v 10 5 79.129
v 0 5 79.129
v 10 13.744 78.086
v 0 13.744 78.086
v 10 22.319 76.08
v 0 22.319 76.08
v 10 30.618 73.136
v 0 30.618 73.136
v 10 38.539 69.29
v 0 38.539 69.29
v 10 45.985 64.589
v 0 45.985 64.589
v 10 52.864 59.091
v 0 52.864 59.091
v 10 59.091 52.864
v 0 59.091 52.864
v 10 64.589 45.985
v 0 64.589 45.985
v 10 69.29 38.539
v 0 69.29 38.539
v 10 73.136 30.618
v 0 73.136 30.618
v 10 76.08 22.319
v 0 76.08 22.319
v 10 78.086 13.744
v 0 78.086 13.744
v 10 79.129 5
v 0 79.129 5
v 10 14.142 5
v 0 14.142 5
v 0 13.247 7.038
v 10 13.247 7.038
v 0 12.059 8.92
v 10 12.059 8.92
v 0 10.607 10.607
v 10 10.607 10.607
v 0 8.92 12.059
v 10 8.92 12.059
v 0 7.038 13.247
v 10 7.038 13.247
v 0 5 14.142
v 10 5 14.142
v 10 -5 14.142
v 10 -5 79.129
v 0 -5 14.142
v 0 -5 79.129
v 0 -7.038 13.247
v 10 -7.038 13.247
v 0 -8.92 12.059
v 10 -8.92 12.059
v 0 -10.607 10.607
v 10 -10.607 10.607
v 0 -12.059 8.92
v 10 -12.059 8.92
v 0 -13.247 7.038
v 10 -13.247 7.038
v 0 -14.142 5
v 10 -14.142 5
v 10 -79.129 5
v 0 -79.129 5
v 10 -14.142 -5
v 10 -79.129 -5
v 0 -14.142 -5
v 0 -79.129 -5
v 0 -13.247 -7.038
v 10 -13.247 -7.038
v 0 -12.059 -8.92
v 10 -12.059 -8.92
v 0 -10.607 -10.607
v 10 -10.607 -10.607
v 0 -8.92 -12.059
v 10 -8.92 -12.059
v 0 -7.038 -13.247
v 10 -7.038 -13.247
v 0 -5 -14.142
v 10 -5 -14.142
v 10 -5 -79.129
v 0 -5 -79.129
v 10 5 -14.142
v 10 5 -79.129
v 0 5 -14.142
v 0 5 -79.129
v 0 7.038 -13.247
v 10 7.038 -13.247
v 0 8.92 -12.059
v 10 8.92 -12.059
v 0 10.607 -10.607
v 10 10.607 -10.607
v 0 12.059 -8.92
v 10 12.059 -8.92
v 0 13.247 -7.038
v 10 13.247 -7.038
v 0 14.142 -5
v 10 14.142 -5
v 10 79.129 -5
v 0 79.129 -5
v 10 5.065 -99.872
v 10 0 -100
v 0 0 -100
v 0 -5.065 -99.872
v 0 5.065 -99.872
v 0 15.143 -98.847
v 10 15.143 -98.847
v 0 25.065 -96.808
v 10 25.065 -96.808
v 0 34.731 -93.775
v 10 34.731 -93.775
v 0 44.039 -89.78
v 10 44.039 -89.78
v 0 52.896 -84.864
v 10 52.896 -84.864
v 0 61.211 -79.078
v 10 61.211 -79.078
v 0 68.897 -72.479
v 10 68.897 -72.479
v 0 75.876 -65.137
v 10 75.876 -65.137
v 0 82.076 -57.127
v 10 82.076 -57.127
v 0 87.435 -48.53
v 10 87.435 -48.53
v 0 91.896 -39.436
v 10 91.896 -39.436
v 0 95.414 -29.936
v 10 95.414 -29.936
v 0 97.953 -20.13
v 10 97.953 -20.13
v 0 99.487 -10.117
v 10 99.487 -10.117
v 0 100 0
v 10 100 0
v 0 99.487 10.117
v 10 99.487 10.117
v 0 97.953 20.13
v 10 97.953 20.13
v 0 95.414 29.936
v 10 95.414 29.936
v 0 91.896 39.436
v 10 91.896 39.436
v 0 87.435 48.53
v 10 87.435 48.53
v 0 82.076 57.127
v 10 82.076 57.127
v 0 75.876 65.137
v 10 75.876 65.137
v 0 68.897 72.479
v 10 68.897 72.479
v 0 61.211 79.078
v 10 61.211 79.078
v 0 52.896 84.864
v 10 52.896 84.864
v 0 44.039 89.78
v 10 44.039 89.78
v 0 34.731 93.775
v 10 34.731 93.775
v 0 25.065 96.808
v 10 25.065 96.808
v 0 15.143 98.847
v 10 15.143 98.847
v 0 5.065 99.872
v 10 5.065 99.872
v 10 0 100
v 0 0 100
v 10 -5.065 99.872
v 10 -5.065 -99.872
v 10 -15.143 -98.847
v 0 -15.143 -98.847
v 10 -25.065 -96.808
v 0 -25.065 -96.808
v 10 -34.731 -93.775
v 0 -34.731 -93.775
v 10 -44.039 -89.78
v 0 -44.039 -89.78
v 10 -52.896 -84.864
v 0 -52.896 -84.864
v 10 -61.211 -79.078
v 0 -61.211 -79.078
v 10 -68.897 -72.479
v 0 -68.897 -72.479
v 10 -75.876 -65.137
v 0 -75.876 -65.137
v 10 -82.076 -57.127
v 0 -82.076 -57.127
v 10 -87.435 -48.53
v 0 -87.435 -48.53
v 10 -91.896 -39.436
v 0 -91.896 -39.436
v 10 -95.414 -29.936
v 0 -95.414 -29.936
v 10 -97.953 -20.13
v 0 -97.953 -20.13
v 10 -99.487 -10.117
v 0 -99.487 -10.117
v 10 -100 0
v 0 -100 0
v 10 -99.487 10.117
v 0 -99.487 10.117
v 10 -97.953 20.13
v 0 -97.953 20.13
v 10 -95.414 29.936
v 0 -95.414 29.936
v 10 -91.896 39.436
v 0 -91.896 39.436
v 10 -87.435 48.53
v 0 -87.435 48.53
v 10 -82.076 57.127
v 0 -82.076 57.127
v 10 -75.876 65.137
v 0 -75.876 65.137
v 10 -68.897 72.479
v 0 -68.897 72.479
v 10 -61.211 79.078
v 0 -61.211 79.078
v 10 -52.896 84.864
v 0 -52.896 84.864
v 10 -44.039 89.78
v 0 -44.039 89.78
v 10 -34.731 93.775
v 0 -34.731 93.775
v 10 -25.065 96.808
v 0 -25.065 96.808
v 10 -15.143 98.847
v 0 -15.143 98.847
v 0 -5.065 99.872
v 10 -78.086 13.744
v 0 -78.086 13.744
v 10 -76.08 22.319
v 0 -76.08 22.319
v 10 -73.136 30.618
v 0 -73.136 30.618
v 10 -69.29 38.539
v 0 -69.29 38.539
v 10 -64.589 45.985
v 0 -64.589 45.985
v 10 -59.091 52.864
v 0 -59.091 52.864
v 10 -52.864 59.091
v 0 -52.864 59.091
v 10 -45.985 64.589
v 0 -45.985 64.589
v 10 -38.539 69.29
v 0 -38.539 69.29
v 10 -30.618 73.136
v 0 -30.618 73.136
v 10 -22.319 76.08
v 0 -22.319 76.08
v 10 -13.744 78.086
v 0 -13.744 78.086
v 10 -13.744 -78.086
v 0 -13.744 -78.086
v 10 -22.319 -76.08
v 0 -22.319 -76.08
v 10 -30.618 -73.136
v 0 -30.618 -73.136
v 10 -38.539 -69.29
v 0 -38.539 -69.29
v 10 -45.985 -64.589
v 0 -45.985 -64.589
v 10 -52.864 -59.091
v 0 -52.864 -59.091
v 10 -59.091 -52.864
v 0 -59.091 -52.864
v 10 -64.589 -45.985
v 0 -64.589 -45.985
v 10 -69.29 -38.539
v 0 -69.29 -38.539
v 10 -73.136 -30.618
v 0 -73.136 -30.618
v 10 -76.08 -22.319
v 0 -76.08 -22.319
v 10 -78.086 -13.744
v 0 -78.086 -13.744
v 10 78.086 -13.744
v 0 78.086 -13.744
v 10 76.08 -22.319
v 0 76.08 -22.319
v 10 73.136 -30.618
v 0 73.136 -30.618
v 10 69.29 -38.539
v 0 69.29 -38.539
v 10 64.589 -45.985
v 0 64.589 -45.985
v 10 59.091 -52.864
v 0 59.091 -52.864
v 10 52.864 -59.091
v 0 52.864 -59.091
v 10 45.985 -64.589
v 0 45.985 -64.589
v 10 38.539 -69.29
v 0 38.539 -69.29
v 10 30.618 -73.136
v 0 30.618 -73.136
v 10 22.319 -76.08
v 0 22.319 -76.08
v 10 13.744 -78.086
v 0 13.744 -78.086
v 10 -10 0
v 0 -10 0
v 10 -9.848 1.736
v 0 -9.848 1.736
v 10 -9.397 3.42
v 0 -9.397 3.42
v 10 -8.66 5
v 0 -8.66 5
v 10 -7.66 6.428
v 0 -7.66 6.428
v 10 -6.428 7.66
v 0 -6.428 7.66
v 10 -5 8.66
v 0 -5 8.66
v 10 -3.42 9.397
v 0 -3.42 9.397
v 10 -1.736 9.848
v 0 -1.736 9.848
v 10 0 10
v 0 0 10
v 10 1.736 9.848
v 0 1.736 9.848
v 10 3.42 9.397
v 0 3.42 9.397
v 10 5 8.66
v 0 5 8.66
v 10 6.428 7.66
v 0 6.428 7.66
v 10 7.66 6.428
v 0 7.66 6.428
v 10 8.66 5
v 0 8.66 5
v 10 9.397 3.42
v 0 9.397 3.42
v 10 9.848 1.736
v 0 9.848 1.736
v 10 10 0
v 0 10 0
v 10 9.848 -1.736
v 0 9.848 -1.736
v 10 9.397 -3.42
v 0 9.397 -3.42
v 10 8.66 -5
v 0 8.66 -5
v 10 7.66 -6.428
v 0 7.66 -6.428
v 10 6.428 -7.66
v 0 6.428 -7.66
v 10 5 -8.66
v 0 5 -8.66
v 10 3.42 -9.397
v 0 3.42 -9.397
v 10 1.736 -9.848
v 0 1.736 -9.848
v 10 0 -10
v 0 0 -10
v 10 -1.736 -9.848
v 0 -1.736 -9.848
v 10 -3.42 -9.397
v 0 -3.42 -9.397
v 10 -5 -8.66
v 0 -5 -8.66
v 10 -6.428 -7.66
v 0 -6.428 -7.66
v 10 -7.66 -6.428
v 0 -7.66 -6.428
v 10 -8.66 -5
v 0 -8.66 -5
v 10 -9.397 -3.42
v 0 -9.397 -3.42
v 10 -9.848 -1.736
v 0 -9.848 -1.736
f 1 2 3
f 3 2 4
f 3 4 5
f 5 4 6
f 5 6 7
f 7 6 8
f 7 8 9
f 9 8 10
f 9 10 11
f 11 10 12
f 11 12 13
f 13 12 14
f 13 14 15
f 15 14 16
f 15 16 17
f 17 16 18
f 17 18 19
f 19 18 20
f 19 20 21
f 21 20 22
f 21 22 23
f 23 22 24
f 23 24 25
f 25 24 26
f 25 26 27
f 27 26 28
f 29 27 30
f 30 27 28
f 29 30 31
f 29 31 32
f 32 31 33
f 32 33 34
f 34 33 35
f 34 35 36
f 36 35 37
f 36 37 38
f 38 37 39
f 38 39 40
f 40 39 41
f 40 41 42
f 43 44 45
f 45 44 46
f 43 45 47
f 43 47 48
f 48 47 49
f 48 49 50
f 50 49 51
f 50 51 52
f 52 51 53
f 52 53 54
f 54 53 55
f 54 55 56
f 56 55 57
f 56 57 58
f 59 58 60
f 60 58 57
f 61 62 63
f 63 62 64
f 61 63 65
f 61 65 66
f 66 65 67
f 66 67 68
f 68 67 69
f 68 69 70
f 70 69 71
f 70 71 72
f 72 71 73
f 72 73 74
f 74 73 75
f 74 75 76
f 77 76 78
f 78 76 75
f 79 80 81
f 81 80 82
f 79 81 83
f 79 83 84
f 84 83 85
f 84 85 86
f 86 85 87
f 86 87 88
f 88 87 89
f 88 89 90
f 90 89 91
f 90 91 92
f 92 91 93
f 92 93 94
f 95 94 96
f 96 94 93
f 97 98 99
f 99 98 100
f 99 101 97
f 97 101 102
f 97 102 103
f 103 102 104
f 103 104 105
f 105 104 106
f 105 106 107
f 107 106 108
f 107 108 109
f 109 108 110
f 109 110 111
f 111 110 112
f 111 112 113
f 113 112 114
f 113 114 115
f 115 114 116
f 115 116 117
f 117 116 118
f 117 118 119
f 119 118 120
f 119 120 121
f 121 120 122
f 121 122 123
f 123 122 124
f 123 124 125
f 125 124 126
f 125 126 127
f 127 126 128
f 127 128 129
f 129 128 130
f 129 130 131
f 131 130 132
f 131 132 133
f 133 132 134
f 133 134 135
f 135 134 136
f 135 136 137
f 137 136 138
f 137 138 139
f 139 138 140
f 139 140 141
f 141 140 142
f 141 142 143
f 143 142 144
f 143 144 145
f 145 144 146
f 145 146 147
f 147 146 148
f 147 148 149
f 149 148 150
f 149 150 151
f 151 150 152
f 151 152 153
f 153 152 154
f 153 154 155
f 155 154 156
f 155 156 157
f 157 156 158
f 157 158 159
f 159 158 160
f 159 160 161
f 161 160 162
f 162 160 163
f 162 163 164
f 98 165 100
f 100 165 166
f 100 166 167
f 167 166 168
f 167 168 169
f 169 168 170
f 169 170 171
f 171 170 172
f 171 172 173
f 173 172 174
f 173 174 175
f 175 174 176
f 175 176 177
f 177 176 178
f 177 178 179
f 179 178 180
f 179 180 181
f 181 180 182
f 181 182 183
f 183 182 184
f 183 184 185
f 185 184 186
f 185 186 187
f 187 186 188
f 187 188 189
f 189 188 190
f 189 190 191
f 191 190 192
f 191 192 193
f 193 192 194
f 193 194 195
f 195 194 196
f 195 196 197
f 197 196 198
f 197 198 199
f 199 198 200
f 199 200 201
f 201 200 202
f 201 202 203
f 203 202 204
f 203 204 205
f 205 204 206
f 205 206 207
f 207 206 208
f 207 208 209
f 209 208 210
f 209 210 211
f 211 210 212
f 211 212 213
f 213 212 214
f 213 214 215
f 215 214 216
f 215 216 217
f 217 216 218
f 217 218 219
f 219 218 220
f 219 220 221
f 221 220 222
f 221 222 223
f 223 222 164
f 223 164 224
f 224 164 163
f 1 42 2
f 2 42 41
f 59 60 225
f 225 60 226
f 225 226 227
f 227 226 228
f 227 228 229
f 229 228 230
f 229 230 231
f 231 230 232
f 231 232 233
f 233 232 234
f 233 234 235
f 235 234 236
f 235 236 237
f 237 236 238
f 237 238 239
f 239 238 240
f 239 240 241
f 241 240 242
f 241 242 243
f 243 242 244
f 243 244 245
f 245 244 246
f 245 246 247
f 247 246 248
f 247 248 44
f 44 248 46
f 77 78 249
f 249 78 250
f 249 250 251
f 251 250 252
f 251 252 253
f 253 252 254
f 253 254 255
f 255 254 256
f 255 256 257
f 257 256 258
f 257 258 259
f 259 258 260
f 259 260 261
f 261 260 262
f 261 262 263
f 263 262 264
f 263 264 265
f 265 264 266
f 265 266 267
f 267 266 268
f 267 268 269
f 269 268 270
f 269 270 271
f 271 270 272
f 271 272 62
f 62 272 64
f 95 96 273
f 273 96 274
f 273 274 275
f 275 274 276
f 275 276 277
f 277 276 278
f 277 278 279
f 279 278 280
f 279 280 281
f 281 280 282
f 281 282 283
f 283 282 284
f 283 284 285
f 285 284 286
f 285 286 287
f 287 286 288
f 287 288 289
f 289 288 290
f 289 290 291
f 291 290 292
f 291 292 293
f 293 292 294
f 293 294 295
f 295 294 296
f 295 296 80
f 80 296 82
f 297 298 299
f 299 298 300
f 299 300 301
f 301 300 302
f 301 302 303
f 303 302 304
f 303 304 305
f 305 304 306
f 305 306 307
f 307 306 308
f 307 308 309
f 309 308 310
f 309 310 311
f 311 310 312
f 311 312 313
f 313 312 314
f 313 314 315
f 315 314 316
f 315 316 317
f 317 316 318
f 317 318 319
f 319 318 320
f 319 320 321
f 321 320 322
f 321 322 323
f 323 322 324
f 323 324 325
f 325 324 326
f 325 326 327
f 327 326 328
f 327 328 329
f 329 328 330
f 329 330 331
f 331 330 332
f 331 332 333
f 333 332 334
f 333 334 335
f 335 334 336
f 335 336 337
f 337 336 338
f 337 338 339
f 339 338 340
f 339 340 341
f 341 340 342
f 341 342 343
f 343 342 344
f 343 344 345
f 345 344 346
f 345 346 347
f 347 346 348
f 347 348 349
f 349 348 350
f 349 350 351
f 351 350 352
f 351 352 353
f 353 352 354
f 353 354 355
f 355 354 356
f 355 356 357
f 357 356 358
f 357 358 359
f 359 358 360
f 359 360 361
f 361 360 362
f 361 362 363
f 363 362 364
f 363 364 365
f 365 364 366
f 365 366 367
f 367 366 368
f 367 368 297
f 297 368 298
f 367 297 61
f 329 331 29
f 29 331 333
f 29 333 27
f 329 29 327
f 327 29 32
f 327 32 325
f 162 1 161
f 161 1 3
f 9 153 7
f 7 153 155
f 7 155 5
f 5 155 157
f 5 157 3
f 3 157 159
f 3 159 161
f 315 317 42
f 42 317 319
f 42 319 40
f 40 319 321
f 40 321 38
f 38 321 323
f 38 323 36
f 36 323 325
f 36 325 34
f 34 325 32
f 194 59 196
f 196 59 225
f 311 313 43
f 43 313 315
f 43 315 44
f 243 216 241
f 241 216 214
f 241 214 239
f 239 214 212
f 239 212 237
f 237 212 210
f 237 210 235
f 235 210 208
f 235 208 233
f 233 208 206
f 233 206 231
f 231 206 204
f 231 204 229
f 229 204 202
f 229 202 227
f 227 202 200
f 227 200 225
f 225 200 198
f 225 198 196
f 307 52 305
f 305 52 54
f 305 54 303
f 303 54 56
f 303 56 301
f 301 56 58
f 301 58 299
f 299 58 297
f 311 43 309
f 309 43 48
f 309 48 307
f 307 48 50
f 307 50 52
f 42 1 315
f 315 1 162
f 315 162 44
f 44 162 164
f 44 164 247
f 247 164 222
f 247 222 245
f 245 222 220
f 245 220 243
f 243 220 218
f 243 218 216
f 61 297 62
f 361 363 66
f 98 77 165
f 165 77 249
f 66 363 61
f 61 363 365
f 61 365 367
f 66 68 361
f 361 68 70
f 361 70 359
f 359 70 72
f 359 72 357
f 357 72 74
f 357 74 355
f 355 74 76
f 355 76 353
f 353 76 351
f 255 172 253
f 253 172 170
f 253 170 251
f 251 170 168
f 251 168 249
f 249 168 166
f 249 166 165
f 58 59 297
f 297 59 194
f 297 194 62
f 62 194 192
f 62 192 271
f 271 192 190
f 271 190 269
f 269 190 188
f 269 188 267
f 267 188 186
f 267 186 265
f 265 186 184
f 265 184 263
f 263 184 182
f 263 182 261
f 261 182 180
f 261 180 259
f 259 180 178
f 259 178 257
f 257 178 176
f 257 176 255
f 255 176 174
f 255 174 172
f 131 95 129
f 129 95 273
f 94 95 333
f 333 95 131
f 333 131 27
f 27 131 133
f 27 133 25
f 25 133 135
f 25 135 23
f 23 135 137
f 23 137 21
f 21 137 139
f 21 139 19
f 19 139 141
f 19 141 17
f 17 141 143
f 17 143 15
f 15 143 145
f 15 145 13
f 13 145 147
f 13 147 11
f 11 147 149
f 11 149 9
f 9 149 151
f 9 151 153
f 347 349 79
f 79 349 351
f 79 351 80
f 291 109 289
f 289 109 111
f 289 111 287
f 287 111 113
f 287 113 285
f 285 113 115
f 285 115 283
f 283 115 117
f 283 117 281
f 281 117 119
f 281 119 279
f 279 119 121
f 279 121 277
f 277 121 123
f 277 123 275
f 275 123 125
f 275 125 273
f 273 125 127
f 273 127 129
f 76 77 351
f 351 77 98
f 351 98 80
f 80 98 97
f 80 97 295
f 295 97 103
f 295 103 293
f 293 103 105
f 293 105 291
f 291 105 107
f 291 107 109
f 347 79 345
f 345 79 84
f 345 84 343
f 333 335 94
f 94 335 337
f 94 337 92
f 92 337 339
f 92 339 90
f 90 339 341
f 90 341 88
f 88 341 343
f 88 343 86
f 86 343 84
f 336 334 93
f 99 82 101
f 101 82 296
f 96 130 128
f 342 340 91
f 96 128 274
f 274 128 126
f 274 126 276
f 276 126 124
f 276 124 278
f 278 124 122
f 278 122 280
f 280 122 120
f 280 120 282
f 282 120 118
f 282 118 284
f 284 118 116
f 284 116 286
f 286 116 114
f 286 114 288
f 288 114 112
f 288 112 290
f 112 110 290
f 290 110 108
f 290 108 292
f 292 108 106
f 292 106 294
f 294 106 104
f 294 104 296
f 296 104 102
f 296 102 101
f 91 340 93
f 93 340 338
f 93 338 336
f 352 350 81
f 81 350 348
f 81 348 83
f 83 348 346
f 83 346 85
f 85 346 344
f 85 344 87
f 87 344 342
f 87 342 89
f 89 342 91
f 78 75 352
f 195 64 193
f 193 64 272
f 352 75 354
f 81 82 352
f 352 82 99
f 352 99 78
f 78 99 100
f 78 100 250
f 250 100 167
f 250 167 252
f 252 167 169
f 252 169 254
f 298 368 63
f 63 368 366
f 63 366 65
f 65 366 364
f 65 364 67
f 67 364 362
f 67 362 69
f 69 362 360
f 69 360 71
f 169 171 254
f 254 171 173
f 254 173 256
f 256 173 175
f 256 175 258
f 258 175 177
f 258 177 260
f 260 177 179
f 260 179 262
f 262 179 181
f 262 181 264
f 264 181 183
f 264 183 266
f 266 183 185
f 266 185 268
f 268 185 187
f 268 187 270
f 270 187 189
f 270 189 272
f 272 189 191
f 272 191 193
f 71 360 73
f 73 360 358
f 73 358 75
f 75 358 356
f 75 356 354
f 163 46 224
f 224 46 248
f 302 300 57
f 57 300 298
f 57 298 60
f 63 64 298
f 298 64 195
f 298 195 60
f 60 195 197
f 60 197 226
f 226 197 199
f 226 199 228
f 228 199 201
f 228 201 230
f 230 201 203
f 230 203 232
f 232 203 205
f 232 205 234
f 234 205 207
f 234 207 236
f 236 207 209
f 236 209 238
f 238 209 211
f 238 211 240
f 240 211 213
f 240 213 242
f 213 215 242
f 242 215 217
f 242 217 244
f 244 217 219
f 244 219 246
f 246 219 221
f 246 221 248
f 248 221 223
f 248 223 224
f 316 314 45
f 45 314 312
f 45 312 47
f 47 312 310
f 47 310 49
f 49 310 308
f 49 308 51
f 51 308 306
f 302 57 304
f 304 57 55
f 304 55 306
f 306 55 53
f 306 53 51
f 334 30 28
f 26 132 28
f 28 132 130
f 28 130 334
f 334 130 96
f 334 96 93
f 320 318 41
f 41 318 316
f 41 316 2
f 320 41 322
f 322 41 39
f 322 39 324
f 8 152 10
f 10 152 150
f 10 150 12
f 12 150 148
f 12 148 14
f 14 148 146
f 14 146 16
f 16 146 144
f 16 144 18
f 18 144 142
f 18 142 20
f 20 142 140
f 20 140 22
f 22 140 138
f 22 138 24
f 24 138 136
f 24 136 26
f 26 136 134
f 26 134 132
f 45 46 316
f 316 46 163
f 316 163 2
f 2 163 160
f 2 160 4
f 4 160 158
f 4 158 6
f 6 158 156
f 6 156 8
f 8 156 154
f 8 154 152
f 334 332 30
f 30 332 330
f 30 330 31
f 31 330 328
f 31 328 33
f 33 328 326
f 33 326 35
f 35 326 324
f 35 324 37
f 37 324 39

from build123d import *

# Parameters (mm, degrees)
SKETCH1_R           = 100
SKETCH1_R_2         = 79.286499618
SKETCH1_R_3         = 15
SKETCH1_R_4         = 10
BOSS_EXTRUDE1_DEPTH = 10


with BuildPart() as part:
    # Sketch1 → Boss-Extrude1 (new body)
    with BuildSketch(Plane(origin=(0, 0, 0), x_dir=(0, 0, -1), z_dir=(1, 0, 0))):
        Circle(SKETCH1_R)
        Circle(SKETCH1_R_2, mode=Mode.SUBTRACT)
        with BuildLine():
            Line((-5, -14.142135624), (-5, -79.128686465))
            ThreePointArc((-5, -79.128686465), (0, -79.286499618), (5, -79.128686465))
            Line((5, -79.128686465), (5, -14.142135624))
            ThreePointArc((5, -14.142135624), (0, -15), (-5, -14.142135624))
        make_face()
        with BuildLine():
            Line((-14.142135624, 5), (-79.128686465, 5))
            ThreePointArc((-79.128686465, 5), (-79.286499618, 0), (-79.128686465, -5))
            Line((-79.128686465, -5), (-14.142135624, -5))
            ThreePointArc((-14.142135624, -5), (-15, 0), (-14.142135624, 5))
        make_face()
        with BuildLine():
            ThreePointArc((5, 79.128686465), (0, 79.286499618), (-5, 79.128686465))
            Line((-5, 79.128686465), (-5, 14.142135624))
            ThreePointArc((-5, 14.142135624), (0, 15), (5, 14.142135624))
            Line((5, 14.142135624), (5, 79.128686465))
        make_face()
        with BuildLine():
            ThreePointArc((79.286499618, 0), (79.247036509, 2.50124494), (79.128686465, 5))
            Line((79.128686465, 5), (14.142135624, 5))
            ThreePointArc((14.142135624, 5), (14.783978395, 2.536529681), (15, 0))
            ThreePointArc((15, 0), (14.783978395, -2.536529681), (14.142135624, -5))
            Line((14.142135624, -5), (79.128686465, -5))
            ThreePointArc((79.128686465, -5), (79.247036509, -2.50124494), (79.286499618, 0))
        make_face()
        Circle(SKETCH1_R_3)
        Circle(SKETCH1_R_4, mode=Mode.SUBTRACT)
    extrude(amount=BOSS_EXTRUDE1_DEPTH)


solid = part.part
